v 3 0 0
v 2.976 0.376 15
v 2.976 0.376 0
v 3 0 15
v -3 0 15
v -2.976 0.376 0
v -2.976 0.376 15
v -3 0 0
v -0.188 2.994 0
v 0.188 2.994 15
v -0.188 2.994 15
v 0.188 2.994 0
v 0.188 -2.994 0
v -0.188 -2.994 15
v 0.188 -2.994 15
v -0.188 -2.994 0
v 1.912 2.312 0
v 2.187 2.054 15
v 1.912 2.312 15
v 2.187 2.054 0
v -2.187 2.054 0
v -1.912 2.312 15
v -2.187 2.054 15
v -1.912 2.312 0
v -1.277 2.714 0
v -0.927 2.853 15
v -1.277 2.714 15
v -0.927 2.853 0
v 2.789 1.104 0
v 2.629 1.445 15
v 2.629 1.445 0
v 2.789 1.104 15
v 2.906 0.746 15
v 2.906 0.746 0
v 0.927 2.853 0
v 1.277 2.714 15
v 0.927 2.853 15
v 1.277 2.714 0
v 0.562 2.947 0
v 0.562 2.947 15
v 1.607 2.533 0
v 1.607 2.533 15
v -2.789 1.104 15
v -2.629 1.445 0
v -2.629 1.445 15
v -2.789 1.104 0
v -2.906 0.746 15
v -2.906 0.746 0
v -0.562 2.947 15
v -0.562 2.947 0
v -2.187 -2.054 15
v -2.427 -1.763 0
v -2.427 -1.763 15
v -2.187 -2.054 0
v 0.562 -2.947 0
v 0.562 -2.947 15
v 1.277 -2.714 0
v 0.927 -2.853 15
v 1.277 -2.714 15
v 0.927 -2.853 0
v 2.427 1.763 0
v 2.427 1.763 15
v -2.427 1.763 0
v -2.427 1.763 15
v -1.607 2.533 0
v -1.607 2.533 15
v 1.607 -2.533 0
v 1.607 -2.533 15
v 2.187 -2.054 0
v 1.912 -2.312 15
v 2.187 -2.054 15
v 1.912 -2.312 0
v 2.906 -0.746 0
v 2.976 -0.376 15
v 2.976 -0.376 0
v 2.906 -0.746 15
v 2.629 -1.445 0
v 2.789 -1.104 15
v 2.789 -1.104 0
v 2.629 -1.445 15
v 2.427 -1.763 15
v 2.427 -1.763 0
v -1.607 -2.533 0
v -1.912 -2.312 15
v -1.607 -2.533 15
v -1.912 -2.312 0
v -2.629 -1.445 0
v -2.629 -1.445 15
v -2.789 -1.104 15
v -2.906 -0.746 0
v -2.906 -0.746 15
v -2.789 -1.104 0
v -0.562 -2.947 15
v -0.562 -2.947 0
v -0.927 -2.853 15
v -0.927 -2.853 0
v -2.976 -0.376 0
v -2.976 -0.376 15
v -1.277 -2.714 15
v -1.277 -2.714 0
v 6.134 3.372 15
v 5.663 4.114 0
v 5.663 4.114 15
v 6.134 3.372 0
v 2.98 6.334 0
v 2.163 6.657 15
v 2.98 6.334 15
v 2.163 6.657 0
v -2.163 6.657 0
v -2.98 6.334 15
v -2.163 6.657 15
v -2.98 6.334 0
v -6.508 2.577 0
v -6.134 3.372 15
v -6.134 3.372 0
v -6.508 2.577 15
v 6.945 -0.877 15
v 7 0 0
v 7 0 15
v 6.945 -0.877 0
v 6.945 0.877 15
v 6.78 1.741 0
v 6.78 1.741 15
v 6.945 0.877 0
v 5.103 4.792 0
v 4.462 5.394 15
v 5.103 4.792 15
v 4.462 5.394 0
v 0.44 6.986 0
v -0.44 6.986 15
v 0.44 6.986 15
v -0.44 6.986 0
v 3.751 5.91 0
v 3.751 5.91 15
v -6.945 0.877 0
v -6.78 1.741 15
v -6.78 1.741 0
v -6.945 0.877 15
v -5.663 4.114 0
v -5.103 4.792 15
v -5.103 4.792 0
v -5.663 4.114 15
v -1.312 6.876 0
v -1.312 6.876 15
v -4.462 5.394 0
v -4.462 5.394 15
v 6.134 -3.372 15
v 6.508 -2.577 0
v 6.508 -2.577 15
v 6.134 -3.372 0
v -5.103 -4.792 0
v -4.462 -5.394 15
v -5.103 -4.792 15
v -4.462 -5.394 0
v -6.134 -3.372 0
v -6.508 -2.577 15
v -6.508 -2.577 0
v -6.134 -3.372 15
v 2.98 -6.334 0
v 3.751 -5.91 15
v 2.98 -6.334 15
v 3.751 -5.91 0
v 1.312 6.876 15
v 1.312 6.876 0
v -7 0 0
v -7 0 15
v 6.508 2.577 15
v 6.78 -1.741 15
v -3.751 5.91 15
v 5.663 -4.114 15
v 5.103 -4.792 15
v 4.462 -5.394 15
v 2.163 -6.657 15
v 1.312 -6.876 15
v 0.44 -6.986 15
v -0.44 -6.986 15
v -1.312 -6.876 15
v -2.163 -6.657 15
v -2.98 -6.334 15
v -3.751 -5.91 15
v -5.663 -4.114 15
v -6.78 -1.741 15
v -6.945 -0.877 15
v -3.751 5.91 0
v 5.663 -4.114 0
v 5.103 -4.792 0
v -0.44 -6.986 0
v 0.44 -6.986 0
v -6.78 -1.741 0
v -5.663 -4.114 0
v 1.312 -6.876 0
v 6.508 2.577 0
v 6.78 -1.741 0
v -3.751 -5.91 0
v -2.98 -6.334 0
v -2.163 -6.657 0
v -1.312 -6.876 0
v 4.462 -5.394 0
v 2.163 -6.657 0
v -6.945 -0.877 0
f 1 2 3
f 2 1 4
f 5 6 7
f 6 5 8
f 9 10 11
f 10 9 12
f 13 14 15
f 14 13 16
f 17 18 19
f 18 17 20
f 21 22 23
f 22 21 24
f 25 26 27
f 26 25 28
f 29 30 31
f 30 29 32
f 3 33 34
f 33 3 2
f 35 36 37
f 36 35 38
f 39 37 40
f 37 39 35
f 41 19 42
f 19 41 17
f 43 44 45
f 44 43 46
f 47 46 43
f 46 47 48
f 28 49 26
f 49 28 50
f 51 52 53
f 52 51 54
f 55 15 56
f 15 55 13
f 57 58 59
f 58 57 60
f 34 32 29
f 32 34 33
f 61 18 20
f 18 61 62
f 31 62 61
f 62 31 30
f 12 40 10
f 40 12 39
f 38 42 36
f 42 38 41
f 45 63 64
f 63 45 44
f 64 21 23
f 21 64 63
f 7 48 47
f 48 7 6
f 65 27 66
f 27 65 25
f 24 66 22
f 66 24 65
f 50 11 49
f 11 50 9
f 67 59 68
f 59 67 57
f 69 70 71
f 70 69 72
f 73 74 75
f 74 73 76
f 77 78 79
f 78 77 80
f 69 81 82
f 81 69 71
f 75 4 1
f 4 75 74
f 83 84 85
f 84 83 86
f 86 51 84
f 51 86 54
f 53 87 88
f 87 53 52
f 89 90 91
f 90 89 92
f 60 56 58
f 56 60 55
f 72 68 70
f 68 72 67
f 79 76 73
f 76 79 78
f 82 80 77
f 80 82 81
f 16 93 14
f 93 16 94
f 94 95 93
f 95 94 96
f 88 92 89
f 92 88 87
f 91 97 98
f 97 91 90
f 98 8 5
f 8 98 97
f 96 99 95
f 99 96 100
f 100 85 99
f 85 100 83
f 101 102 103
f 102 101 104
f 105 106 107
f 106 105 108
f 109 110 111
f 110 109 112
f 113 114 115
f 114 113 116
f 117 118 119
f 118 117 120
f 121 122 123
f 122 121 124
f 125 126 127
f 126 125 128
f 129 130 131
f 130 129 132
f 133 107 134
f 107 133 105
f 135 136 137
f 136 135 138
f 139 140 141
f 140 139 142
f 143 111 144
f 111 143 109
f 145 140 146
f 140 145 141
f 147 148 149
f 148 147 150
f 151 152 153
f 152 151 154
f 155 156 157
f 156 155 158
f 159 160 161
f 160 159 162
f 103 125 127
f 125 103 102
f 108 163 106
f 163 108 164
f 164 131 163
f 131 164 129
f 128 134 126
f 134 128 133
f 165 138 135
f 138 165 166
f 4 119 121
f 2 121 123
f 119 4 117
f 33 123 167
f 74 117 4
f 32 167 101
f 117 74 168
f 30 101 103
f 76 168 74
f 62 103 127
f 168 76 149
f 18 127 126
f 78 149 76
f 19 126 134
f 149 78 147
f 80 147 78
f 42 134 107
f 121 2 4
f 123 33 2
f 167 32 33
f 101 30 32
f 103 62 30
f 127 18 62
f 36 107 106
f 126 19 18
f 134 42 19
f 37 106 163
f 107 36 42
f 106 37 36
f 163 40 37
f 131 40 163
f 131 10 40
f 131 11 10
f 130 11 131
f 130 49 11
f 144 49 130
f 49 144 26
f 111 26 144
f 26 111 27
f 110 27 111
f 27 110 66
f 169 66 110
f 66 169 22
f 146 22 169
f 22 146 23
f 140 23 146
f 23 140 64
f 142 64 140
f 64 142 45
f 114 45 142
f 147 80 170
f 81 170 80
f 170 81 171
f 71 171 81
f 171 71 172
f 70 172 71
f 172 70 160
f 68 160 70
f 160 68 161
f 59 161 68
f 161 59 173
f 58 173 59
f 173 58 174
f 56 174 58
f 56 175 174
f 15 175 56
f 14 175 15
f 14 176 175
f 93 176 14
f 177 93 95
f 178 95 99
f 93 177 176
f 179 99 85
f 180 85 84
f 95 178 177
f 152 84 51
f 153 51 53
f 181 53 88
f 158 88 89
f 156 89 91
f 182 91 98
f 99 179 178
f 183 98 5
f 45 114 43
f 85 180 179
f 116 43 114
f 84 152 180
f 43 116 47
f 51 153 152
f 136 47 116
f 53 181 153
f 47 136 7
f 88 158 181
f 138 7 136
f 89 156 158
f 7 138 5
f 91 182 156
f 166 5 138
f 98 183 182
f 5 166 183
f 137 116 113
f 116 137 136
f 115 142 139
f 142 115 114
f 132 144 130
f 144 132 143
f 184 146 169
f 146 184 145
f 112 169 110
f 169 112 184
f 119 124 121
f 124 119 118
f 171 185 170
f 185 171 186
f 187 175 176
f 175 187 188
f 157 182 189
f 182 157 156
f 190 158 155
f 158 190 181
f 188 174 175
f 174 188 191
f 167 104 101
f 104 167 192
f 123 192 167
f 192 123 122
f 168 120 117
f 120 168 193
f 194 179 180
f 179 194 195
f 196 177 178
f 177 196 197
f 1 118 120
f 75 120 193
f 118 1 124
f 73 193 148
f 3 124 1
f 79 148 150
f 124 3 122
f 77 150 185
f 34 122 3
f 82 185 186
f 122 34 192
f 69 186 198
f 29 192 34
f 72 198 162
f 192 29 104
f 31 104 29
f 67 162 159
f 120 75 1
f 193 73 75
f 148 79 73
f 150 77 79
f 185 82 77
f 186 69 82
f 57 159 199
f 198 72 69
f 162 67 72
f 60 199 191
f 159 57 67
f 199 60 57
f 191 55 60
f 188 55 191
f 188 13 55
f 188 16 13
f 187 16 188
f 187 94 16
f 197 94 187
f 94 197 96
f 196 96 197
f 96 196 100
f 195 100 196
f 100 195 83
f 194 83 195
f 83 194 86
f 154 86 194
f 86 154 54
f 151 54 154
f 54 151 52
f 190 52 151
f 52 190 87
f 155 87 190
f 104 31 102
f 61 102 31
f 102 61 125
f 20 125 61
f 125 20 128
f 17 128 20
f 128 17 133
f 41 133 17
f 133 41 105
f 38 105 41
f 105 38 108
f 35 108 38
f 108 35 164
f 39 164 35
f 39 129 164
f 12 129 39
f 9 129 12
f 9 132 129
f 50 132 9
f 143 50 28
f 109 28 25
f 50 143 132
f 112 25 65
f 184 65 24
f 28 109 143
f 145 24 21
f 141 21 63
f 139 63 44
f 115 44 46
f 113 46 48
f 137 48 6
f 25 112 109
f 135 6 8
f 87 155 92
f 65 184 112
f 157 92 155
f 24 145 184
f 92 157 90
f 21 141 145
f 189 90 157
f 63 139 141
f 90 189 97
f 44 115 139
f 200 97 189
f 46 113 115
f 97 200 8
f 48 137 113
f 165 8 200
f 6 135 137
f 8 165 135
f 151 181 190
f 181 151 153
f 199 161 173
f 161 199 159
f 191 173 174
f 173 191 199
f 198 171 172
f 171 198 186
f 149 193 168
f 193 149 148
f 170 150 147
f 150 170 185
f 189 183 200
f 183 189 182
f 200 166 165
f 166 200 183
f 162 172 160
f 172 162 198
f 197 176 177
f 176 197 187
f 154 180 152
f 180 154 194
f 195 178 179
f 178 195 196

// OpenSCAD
$fn = 50;


difference() {
	union() {
		cylinder(h = 15, r = 7.0000000000);
	}
	union() {
		translate(v = [0.0000000000, 0.0000000000, -100.0000000000]) {
			cylinder(h = 200, r = 3.0000000000);
		}
		cylinder(h = 15, r = 1.5000000000);
		cylinder(h = 15, r = 1.5000000000);
		cylinder(h = 15, r = 1.5000000000);
	}
}
